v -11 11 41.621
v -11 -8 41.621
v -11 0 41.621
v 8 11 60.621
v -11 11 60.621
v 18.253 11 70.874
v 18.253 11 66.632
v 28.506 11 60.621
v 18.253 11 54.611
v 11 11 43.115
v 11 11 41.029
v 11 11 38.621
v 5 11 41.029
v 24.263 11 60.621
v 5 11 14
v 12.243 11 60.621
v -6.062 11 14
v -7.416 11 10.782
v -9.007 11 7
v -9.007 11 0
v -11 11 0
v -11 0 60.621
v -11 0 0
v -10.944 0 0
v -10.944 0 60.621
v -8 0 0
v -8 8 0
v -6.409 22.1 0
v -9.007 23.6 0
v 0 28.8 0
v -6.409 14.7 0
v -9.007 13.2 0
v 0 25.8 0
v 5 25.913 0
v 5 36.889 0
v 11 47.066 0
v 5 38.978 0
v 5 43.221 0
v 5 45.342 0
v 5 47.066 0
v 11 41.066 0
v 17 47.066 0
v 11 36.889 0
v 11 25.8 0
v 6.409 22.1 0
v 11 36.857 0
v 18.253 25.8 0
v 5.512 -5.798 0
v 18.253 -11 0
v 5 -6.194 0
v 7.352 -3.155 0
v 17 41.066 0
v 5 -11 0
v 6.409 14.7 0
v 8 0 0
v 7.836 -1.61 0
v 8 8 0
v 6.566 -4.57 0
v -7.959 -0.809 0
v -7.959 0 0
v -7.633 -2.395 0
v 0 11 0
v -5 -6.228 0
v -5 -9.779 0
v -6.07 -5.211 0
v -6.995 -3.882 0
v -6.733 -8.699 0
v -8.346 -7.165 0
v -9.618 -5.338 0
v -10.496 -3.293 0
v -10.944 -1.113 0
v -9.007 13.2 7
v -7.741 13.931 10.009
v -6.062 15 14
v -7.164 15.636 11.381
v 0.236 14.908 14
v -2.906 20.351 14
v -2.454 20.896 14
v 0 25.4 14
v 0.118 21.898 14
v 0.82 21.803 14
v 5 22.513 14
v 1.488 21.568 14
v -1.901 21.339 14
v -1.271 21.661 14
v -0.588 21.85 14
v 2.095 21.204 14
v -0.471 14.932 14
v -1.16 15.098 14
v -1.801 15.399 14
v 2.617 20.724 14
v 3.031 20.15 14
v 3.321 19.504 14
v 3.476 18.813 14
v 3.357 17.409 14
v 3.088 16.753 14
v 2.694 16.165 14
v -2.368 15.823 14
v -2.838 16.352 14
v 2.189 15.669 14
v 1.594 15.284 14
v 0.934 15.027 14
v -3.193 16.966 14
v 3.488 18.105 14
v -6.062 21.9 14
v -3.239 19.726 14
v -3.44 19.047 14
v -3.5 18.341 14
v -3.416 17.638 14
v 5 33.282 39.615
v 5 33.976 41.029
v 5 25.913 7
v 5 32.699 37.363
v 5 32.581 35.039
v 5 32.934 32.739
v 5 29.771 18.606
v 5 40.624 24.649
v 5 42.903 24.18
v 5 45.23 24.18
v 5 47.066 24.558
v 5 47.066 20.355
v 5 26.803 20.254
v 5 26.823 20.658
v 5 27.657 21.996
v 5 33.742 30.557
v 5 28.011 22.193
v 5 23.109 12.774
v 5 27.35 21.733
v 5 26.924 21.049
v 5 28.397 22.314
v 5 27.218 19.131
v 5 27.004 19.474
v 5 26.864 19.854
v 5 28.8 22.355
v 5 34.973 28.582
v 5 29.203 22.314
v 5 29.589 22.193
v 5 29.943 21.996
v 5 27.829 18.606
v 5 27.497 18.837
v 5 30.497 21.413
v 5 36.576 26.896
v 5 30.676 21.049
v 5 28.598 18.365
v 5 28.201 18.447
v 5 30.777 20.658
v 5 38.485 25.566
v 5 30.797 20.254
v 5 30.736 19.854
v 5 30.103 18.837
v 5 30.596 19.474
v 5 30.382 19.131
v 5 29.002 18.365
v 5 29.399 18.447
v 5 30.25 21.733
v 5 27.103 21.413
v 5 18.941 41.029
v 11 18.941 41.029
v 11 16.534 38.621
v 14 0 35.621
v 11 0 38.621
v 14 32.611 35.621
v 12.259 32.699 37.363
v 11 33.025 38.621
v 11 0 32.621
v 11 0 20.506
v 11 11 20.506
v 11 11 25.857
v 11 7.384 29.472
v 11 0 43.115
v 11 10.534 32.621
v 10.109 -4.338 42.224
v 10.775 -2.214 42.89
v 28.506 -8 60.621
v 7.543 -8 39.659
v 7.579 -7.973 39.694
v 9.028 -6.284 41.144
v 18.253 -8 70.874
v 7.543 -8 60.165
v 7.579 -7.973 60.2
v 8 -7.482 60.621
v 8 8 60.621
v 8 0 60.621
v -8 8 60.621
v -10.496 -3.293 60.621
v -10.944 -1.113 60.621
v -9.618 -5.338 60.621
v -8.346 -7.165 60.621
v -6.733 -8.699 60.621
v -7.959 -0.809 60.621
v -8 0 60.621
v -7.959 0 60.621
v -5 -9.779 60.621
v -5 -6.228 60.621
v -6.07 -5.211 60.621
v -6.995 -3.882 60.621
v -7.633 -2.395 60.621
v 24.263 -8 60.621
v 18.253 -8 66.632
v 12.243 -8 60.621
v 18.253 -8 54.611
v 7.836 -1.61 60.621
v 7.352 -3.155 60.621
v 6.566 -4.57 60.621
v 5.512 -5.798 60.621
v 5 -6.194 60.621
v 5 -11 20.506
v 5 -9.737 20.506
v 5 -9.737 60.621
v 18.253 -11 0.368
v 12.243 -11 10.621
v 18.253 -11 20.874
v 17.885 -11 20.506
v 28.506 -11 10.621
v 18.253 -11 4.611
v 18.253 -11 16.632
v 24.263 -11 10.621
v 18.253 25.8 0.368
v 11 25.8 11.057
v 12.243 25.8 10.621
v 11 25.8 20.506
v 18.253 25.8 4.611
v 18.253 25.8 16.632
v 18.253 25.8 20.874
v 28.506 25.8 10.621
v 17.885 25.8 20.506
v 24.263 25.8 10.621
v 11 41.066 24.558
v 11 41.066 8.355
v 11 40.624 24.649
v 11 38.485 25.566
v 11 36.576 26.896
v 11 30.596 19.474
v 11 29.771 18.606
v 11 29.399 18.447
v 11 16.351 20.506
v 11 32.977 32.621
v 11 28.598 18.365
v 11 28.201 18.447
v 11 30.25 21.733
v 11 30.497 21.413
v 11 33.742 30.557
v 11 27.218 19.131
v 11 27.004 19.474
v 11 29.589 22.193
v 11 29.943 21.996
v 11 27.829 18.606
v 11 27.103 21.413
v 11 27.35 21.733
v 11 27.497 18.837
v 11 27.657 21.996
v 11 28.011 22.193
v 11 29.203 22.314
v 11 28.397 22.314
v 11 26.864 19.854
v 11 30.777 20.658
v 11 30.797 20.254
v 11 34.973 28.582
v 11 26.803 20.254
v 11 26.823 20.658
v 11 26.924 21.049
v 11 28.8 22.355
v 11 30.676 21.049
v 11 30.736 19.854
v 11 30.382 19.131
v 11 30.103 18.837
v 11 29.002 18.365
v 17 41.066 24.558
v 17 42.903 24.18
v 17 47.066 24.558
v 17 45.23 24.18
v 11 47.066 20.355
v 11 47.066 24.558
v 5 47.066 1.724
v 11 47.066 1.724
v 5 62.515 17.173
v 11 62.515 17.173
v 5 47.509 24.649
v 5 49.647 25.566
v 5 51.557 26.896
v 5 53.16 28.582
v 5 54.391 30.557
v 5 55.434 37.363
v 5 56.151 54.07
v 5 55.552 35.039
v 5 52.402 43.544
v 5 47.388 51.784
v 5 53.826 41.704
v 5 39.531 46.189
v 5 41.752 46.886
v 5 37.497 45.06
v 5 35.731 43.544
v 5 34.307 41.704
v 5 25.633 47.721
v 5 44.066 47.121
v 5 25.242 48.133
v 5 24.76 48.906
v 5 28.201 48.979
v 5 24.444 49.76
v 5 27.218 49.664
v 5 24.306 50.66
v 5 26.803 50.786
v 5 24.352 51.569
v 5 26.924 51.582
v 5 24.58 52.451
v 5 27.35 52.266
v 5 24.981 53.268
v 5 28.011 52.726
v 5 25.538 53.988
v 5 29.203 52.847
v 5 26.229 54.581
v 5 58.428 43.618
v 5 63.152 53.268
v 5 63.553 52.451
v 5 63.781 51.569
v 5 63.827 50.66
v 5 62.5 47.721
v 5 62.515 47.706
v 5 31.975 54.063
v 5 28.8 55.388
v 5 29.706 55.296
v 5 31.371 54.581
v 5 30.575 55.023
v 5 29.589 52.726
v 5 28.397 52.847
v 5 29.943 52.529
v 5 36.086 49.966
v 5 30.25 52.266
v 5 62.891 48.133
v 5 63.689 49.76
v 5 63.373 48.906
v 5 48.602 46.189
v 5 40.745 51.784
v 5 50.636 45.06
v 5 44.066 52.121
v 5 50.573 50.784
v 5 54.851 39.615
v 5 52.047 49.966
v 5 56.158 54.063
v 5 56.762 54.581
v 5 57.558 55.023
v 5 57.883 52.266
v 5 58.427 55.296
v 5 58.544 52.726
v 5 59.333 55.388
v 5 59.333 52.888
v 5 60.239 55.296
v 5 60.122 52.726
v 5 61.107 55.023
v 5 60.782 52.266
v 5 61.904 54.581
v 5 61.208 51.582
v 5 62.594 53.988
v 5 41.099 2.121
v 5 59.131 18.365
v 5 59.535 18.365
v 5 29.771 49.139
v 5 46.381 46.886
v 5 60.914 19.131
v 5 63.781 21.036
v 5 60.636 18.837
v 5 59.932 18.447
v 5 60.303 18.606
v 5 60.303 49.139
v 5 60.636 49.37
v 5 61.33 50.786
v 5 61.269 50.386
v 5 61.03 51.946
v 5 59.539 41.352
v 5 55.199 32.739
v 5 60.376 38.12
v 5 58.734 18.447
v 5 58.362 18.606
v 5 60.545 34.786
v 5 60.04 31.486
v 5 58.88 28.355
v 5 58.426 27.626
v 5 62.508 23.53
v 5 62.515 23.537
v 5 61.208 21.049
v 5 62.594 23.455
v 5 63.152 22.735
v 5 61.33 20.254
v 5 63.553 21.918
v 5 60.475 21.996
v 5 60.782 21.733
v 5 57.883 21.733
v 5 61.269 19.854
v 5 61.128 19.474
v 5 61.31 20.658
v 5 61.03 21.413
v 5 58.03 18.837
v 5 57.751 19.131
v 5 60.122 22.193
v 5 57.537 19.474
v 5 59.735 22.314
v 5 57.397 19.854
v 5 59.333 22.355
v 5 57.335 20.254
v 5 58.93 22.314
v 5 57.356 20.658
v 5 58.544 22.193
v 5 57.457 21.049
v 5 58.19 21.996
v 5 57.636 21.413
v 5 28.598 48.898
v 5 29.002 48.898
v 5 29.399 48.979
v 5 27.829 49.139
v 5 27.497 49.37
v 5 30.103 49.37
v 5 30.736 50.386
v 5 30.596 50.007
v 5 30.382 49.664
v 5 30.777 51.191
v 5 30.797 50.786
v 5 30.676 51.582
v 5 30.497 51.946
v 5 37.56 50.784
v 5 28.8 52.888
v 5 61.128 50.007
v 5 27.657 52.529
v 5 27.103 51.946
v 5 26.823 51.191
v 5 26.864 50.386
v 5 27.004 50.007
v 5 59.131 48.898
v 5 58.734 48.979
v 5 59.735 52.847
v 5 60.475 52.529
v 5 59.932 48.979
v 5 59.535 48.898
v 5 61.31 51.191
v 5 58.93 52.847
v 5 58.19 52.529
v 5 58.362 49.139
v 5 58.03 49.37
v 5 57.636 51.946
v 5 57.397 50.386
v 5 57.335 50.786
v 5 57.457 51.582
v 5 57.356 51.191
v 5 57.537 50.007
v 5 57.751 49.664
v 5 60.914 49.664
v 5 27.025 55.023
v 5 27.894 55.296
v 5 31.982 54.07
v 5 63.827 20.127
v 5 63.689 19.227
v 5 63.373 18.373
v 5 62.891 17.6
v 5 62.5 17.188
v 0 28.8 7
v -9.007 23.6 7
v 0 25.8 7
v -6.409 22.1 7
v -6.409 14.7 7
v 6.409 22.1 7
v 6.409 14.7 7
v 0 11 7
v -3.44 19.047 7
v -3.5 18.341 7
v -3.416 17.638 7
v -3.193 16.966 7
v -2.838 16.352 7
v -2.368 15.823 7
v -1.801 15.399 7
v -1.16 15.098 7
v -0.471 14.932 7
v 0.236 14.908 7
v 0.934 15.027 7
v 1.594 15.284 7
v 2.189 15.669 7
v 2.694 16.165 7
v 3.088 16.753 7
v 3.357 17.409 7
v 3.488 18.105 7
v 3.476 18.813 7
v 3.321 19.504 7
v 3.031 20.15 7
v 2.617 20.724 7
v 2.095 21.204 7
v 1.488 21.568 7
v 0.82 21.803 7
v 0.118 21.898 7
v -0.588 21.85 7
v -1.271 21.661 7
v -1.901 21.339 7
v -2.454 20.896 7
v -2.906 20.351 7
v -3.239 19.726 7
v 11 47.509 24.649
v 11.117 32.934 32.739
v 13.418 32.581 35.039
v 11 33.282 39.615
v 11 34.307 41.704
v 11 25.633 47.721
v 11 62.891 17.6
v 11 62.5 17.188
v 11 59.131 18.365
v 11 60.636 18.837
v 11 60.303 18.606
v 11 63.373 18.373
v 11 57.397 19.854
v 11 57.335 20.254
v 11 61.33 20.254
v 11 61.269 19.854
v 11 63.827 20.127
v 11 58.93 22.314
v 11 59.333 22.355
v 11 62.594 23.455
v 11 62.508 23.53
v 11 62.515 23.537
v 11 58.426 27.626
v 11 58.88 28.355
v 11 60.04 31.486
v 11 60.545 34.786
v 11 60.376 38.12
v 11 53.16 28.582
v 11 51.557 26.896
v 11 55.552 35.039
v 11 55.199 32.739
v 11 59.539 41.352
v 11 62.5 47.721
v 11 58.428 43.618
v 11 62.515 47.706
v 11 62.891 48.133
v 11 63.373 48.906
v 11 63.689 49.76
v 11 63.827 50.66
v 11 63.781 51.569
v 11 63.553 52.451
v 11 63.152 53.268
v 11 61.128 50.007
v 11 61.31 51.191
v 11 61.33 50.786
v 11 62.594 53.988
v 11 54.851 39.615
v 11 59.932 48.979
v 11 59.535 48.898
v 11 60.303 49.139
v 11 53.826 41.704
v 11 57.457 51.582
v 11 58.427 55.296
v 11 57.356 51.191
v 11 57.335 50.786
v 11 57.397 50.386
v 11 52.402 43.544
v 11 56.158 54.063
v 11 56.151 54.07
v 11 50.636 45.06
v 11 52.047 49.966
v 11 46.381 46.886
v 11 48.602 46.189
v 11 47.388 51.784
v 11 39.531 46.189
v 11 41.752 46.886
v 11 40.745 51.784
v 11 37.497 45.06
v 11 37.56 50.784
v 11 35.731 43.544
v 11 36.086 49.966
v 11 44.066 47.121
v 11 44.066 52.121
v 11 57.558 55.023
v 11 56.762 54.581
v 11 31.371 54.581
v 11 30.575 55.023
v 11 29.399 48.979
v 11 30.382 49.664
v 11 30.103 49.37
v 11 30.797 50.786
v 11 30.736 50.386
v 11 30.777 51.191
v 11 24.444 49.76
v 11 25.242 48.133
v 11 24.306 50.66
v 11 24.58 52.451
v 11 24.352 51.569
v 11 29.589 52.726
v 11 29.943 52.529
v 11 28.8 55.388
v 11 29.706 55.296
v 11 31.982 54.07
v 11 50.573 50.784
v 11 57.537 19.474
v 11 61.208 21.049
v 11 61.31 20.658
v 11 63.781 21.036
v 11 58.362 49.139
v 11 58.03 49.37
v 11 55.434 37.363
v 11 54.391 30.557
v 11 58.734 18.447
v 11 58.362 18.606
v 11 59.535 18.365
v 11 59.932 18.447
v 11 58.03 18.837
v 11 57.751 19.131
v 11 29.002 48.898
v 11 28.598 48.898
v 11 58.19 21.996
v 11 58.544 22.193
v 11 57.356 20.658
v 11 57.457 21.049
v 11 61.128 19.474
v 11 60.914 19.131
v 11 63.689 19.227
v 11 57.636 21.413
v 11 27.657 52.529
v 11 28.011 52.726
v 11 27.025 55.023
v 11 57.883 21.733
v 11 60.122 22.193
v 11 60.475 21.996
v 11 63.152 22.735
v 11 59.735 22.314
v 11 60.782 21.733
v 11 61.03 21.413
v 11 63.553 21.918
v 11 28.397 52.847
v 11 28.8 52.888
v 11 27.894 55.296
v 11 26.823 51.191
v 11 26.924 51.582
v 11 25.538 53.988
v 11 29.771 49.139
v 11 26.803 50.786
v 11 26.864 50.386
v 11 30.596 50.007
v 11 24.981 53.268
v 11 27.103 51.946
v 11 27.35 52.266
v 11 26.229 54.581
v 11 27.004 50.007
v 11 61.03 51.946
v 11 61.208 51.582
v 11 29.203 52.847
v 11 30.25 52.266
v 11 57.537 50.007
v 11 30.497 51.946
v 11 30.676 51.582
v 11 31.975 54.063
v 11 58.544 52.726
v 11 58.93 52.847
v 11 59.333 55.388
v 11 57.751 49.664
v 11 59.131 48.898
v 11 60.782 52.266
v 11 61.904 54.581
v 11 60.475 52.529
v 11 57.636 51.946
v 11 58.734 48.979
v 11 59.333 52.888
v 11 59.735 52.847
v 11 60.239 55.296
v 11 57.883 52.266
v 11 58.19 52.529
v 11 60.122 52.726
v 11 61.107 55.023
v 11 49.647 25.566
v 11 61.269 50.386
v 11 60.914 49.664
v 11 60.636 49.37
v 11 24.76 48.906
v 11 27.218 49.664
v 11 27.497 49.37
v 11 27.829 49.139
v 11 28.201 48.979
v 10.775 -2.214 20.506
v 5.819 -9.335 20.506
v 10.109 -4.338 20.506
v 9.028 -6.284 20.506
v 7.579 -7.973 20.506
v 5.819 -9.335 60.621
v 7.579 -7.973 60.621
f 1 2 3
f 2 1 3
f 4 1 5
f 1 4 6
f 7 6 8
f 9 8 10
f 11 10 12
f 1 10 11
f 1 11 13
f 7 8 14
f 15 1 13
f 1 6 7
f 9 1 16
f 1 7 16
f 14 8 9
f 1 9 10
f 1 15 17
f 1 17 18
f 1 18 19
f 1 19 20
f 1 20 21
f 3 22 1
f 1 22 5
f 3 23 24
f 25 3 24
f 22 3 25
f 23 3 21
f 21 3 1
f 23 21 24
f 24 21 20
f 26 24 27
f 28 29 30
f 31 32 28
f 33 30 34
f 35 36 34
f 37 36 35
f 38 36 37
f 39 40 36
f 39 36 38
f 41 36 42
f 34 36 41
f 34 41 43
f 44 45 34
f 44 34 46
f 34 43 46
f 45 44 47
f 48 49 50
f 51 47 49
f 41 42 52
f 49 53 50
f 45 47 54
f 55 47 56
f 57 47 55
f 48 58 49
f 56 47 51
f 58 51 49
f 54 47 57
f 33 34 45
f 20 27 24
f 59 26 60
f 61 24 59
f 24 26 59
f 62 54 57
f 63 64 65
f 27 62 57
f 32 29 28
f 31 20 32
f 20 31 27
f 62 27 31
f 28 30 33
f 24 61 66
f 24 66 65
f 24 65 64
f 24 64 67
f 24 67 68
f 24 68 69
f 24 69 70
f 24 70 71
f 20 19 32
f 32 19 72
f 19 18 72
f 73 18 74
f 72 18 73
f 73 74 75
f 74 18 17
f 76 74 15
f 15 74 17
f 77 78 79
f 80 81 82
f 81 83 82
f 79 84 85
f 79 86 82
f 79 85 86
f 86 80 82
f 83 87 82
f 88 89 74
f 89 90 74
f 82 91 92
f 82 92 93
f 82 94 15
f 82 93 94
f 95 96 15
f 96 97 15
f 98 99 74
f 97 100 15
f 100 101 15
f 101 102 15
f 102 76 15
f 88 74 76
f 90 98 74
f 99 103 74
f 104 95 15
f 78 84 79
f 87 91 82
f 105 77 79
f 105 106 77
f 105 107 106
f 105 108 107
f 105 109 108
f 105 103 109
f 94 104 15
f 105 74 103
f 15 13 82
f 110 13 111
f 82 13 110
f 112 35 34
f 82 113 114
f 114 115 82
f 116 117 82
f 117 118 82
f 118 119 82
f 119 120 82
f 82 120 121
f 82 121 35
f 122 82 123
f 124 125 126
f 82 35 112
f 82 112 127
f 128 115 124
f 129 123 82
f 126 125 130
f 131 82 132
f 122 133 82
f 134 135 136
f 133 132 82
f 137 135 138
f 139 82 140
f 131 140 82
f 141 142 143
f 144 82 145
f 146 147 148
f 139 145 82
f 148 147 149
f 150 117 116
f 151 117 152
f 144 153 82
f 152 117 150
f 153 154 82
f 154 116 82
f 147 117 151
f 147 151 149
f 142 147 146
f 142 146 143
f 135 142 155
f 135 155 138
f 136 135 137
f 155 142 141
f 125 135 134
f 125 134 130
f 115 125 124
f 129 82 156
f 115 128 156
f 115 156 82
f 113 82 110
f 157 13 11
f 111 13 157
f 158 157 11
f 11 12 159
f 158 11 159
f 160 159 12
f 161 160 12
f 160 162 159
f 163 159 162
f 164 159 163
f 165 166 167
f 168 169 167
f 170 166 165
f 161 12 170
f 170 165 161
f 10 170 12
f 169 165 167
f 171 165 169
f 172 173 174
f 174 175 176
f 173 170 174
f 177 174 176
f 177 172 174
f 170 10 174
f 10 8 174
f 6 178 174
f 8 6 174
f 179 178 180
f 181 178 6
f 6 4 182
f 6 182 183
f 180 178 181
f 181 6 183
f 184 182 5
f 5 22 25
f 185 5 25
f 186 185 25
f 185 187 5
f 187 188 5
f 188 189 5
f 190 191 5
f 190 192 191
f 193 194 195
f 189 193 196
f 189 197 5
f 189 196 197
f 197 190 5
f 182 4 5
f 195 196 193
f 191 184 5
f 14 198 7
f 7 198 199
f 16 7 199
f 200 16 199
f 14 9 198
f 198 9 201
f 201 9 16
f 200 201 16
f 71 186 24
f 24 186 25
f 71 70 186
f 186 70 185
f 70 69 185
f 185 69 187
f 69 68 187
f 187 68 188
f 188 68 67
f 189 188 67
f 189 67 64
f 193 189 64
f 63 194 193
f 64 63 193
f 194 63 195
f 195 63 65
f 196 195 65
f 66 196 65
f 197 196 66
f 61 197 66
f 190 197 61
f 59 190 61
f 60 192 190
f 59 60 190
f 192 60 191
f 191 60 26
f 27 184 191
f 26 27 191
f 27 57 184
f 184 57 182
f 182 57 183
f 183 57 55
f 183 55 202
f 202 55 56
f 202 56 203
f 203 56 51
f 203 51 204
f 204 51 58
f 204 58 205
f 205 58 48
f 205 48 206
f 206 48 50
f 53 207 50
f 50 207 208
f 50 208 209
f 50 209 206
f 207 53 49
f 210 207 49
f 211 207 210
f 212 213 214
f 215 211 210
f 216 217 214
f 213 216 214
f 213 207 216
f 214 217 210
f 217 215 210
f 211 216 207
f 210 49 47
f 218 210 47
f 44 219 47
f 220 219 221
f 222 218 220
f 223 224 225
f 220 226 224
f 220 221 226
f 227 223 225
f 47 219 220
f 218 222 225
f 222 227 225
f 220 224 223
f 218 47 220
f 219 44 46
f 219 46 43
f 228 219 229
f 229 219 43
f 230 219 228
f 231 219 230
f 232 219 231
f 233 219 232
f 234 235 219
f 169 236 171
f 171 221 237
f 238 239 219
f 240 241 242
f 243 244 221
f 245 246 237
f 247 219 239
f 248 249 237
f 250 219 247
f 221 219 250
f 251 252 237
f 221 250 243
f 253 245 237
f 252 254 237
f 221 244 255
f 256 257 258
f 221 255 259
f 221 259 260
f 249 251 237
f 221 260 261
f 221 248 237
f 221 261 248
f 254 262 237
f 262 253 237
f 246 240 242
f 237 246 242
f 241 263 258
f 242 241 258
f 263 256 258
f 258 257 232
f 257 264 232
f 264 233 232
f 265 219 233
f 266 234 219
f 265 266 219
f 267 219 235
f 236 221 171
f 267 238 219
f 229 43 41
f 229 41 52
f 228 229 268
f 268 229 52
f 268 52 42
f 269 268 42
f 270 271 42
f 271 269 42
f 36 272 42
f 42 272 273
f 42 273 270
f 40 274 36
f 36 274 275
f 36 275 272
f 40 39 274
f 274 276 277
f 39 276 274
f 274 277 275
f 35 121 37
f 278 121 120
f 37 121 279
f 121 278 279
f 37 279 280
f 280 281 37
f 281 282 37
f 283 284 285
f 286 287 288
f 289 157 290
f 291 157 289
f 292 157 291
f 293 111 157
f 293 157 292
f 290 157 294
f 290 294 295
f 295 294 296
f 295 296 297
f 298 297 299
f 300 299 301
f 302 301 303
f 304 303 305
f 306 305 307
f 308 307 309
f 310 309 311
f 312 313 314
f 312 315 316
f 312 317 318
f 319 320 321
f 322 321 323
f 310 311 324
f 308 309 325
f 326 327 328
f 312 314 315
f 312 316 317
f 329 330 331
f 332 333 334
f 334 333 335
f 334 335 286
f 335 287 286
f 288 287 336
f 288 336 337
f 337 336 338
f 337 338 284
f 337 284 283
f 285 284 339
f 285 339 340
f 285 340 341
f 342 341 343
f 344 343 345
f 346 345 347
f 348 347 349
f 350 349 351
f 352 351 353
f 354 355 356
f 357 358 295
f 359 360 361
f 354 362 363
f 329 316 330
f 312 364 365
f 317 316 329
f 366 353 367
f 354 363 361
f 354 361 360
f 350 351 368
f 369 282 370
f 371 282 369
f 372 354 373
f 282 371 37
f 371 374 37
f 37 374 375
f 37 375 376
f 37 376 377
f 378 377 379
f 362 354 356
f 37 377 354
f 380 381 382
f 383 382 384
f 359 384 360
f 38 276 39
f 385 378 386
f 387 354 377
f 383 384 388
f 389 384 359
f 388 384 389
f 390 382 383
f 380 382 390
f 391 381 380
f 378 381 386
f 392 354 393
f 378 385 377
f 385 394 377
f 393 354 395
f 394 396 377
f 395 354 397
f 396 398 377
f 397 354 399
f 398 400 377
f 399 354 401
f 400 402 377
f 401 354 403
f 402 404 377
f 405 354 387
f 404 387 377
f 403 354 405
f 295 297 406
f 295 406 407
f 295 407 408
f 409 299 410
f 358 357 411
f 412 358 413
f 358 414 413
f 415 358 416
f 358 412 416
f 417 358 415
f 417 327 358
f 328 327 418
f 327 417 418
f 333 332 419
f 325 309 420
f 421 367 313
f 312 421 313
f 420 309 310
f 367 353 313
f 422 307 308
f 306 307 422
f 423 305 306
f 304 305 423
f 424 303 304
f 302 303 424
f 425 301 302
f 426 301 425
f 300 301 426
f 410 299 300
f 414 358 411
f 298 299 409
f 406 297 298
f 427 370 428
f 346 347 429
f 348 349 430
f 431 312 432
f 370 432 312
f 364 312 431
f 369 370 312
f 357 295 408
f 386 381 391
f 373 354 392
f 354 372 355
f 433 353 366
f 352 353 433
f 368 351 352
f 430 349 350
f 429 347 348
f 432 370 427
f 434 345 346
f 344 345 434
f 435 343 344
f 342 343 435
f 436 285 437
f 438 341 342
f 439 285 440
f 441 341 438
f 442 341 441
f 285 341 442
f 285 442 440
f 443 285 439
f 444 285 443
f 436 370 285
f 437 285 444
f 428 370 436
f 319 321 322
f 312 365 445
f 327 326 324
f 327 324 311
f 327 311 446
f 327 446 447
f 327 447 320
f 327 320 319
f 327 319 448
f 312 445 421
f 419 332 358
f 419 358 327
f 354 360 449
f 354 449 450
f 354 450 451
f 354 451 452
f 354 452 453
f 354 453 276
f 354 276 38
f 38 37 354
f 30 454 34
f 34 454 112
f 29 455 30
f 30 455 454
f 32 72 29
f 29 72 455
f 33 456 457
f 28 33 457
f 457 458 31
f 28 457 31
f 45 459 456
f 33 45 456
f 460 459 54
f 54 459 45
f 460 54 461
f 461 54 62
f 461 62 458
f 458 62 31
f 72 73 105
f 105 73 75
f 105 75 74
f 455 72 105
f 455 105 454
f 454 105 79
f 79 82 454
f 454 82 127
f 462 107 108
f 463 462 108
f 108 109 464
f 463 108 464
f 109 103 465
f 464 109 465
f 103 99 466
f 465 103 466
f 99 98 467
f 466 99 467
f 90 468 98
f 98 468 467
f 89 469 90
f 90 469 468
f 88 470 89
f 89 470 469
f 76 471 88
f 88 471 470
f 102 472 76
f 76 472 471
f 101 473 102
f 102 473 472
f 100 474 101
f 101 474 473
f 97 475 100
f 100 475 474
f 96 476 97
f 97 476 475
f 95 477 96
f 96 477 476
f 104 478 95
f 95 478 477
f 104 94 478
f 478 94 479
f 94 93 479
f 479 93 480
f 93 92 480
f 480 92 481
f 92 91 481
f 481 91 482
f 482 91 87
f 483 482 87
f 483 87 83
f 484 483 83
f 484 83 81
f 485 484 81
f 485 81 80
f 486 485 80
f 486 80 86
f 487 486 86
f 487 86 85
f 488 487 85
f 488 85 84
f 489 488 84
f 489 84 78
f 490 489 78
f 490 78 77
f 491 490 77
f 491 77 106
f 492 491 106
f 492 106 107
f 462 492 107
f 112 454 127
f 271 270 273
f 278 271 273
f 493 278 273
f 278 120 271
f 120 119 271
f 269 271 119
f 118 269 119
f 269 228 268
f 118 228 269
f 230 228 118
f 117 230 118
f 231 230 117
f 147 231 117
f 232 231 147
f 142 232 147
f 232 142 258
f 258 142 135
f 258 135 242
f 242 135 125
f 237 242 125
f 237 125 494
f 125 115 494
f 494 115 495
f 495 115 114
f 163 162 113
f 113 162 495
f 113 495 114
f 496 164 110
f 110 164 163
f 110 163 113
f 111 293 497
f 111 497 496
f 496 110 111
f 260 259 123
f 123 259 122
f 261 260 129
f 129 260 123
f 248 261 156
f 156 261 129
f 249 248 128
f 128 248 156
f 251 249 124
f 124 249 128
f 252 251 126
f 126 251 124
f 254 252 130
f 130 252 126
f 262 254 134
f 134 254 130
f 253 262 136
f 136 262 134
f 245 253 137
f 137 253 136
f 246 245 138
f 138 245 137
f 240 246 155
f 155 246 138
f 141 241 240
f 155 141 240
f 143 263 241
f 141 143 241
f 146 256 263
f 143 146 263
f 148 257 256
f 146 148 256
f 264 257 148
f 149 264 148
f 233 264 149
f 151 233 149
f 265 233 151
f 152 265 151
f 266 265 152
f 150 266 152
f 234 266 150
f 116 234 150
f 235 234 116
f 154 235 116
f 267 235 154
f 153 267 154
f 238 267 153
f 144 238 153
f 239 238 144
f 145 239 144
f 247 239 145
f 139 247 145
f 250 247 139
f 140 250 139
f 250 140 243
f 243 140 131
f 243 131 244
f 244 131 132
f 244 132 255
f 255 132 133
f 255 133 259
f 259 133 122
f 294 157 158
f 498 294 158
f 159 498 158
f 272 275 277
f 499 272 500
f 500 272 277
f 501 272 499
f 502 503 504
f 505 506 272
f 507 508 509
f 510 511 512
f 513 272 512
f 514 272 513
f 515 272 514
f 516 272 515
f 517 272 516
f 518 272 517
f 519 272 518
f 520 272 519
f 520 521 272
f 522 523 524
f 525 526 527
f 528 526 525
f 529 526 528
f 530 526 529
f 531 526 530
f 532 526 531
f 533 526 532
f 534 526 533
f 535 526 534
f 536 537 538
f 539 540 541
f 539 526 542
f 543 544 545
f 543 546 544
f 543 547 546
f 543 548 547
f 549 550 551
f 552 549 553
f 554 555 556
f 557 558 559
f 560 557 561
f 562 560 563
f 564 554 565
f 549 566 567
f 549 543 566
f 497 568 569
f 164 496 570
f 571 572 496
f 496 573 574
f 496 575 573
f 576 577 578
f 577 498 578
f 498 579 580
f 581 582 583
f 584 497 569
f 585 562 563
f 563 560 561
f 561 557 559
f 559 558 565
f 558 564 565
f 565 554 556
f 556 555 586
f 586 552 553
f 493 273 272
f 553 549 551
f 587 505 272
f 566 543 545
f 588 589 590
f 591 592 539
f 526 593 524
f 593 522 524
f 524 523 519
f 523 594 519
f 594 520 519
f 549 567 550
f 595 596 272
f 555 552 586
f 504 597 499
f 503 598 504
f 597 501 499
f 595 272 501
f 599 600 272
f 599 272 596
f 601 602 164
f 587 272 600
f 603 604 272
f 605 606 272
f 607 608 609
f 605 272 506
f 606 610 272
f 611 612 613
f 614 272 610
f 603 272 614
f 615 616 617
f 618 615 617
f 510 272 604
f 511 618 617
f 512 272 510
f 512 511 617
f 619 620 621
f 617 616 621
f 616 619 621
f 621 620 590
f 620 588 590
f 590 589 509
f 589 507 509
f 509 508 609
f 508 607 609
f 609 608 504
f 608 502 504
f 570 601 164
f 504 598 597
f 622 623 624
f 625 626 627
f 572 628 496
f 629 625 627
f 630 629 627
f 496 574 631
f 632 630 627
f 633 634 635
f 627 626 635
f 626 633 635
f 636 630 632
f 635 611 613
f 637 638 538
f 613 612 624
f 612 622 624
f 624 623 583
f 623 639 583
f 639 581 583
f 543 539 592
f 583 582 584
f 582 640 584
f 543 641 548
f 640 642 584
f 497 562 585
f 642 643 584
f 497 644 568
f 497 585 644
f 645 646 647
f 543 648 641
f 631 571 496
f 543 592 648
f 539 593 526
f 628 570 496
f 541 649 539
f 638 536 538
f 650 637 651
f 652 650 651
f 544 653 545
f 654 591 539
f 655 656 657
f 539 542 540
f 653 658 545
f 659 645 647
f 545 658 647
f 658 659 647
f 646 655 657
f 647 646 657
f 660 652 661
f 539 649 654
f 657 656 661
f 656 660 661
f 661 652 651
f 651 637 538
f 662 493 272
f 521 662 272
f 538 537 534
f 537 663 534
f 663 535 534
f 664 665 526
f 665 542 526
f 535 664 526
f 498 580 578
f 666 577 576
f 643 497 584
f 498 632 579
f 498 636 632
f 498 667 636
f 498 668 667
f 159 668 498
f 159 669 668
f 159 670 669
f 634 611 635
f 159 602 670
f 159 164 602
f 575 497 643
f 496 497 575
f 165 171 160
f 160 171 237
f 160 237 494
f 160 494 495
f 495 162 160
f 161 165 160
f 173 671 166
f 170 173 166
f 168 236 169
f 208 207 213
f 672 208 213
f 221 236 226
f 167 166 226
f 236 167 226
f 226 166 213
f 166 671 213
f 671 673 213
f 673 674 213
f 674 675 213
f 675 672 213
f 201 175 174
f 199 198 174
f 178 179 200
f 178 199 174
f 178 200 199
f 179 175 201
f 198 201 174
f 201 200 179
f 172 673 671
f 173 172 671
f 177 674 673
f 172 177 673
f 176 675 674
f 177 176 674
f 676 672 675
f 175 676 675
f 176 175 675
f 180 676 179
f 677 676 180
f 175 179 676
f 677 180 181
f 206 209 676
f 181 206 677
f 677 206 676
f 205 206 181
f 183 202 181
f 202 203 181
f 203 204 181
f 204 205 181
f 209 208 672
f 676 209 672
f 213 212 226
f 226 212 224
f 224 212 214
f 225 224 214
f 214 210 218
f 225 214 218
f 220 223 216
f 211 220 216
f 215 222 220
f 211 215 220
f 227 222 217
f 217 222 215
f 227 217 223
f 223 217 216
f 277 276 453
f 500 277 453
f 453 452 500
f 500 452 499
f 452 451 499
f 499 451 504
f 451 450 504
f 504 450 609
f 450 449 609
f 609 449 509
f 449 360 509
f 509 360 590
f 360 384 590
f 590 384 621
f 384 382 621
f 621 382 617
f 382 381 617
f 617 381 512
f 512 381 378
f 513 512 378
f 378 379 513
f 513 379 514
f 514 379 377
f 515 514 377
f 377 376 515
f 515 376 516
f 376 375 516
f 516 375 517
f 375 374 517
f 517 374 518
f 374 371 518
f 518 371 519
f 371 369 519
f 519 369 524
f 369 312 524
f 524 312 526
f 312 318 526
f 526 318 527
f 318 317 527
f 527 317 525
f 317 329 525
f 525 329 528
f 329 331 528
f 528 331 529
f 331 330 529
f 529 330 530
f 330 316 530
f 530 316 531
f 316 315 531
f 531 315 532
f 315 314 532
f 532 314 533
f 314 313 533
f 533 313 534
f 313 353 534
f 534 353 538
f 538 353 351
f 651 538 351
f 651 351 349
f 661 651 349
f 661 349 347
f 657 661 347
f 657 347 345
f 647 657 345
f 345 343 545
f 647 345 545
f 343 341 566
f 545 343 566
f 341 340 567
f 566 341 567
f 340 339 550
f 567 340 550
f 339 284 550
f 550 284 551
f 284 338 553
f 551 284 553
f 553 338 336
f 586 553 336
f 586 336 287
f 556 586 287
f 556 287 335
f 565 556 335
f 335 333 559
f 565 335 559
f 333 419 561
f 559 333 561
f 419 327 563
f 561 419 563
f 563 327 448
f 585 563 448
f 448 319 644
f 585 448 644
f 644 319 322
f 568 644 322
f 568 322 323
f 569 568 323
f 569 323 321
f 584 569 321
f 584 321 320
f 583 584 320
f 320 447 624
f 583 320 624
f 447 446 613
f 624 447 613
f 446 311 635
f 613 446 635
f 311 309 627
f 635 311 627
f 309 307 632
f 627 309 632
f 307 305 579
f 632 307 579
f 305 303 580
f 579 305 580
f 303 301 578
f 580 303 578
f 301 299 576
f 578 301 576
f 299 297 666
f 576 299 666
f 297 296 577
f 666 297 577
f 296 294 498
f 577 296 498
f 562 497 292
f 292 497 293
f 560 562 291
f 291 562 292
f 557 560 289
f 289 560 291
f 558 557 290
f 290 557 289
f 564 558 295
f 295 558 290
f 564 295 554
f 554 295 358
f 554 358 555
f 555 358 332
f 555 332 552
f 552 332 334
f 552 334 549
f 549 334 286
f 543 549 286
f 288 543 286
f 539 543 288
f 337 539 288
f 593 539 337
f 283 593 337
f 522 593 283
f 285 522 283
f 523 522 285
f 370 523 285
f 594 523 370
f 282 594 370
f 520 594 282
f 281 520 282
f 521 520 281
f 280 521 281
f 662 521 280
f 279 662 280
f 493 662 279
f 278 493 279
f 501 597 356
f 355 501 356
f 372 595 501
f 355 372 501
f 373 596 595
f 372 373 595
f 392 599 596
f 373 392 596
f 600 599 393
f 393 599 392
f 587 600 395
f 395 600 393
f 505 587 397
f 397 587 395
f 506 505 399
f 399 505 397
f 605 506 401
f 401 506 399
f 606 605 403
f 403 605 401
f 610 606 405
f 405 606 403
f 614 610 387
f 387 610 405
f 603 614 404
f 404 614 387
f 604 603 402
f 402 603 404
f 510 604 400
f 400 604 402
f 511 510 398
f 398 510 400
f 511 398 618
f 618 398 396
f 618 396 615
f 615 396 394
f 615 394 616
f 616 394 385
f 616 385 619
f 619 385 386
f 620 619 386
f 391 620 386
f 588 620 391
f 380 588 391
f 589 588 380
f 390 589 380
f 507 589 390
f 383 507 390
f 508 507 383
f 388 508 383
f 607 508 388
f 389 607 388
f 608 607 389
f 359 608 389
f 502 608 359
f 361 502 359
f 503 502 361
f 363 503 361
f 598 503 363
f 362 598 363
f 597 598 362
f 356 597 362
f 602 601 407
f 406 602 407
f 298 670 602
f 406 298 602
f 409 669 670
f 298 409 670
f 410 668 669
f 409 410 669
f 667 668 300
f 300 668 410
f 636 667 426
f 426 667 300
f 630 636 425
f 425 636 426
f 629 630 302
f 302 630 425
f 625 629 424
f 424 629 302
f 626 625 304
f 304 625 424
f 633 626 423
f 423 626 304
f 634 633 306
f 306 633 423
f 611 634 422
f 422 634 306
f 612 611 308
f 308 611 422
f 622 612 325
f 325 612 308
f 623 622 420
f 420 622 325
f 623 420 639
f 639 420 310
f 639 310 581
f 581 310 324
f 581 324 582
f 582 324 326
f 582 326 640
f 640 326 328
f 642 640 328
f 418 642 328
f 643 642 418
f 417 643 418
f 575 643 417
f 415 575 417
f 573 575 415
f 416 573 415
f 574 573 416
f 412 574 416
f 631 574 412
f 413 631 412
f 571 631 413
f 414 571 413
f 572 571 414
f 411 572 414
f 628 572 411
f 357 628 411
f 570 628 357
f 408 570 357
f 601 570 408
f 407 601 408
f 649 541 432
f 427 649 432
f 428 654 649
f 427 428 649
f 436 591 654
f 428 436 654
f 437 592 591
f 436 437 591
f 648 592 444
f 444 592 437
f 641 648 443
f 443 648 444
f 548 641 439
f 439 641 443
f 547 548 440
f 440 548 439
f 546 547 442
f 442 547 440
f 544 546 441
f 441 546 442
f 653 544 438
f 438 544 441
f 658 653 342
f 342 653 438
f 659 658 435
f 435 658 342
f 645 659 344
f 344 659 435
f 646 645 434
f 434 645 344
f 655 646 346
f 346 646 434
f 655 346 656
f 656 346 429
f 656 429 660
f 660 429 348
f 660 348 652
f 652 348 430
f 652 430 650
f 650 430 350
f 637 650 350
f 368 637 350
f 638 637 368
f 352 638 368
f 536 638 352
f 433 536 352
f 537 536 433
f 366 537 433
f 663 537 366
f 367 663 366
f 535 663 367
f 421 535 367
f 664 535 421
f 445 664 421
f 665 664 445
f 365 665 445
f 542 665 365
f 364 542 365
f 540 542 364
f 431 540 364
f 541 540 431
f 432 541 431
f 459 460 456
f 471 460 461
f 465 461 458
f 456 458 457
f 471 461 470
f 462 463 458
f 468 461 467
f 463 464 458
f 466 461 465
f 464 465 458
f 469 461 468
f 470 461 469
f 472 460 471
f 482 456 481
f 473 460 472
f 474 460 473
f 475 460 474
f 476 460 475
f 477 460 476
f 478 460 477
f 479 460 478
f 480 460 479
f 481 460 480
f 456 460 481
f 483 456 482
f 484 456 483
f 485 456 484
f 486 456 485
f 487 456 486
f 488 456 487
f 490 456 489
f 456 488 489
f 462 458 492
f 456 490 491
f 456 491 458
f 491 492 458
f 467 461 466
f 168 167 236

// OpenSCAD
// file: config.scad
// This is the config for an M8 Mendel sized printer.

//Constants (These are used throughout the whole printer)
frameroddia = 8.5; //the frame rod diameter
smoothroddia = 8.5; //the smooth rod diameter
bushingod = 16; //The prusabushing OD, you can change this to 15 to use LM8UU linear bearings 
bushingheight = 11;
tapsize = 7; //The size of the hole before tapping. 7mm seems to work well.

nemasize = 1.7; //Nema Size (in imperial)
motorcenter = 23; //center hole size for the motor. If your motor center flange is smaller you can beef up parts this way. 
motorshaftdia = 5; // Motor shaft diameter
motorcenterwall = 5;
motorbody = 43;

pulleypitch = 5;
pulleyteeth = 8;
pulleydia = 12; // this will be replaced by the above soon

/* The Mixtape Mendel uses two types of fasteners. One is the "primary" type, which is the larger type that builds the structure,
 which was profiled above as "frameroddia, etc..". In the case of the Mendel, it is M8 threaded rod (Huxley, M6). It also uses "Secondary" hardware. This is a smaller screw used to retain tool heads, attach motors and lock pulleys on shafts. In the case of Mendel this is M3 or M4. M3 is preferred as it is cheaper. Tapping is quite the challenge though. 
*/
nutheight = 7; //Primary
nutdia = 14.8; //Primary
secscrewdia = 4; //secondary 
secscrewtap = 2.5; // secondary

beltthick = 2; //Thickness of the timing belt
beltwidth = 7; // Belt width, used for the y bed clamps so can be a little bugger than actual

mdfthick = 6; //thickness of MDF (You can use other wood, acrylic, lexan, etc)

bearingid = 8; // 608
bearingod = 22; // 608
bearinginnerrace = 12; // the amount of the inner race diameter exposed

tapping = true; //turn tapping on/off, not implemented yet. (Version 0.3 might implement this) Version 0.2 has tapping by default right now
layerheight = 0.32; //skeinforge/slicer layer height, used for the idler wasers right now. 

//Beef/tab/wall
motortabwall = 2.5;

//Frame Vertex
vertexwall = 3;
triangle = 60; // the angle the bottom vertexes have relative to horizontal

//Y Motor Mount
ymountthick = 9;
ywallmulti = 2; //the wall thickness multiplier for the bits that interface with the frame rod

//Y Belt Clamps
clampholewall = 3;
	//(bushingod-pulleydia)/2

//Bar Clamps
barclampwall = 4;

//Top Piece
toppiecethick = 8;
toprodwall = 4;
toprodspacing = 72;
siderodwall = 4;

// X End Pieces
xrodspacing = 50; //rod spacing center to center
nutwall = 3; //wall thickness around nut and bushing
towergap= 10; // 0.75 diameter wrap should be ok i think. Make a flag for full wrap and no square for bushings/linear bearings maybe?
//Motor
motorinterface = 6; //thickness of the motor mount (6 works well, need to decouple from top piece)

//X Carriage 
carriagewidth = 50;
bushingwall = 3;
backwall = 5;
tooldia = 17;
platformthick = 7;
platformextension = 40; 
clampthick = 4; //The two pieces that clamp around the belt

//Z Coupler
couplerwall = 4;
couplerheight = 34; // Make this double 3/4 your shaft length
 
//Extruder (Plastic Pusher)
extruderthick = 5;
bowdencabledia = 4;
bowdenwall = 3;
idlerwall = 2;
pinchwheeldia = 8;

//Mendel Bowden Mount
mountspacing = 50;

//Utility Clamp 
utilityclampwall = 3;

//Groove Mount
	//Default is pretty good for MakerGear insulators
groovedia = 12;
grooveheight = 4.5;

//pen holder 
penwall = 3 ;
shaftheight = 30;
// main file
/*
  Mixtape Mendel - A Fully Parametric RepRap
    Copyright (C) 2011  Steve Kelly

    This program is free software: you can redistribute it and/or modify
    it under the terms of the GNU General Public License as published by
    the Free Software Foundation, either version 3 of the License, or
    (at your option) any later version.

    This program is distributed in the hope that it will be useful,
    but WITHOUT ANY WARRANTY; without even the implied warranty of
    MERCHANTABILITY or FITNESS FOR A PARTICULAR PURPOSE.  See the
    GNU General Public License for more details.

    You should have received a copy of the GNU General Public License
    along with this program.  If not, see <http://www.gnu.org/licenses/>.
*/


include <config.scad>;
$fn = 31;

difference(){
	union(){

	//Bushing Tower
	translate([0,0,0])cylinder(r=bushingod/2+nutwall, h=smoothroddia+nutwall*sin(45)+xrodspacing);
	translate([-bushingod/2-nutwall,0,0])cube([bushingod+nutwall*2,bushingod/2+nutwall,smoothroddia+nutwall*sin(45)+xrodspacing]);

	//x rods
	translate([bushingod/2,-bushingod/2-nutwall,smoothroddia+nutwall*sin(45)])rotate([0,45,0])cube([smoothroddia+nutwall*2,bushingod+nutwall*2+nutdia,smoothroddia+nutwall*2]);
	translate([towergap/2,-bushingod/2-nutwall,0])cube([bushingod/2+nutwall/sin(45)+smoothroddia*sin(45)-towergap/2,bushingod+nutwall*2+nutdia,(smoothroddia+nutwall*2)*2*sin(45)]);
	translate([bushingod/2,-bushingod/2,smoothroddia+nutwall*sin(45)+xrodspacing])rotate([0,45,0])translate([0,0,-(bushingod+nutwall)/sin(45)])cube([smoothroddia+nutwall*2,bushingod+nutwall,smoothroddia+nutwall*2+(bushingod+nutwall)/sin(45)]);

	//leadscrew
	translate([0,bushingod/2+nutdia/2+nutwall,nutheight])rotate([0,0,30])cylinder(r1=nutdia/2+nutwall, r2=tapsize, h=nutheight, $fn=6);
	translate([0,bushingod/2+tapsize/2,nutheight])rotate([0,0,30])cylinder(r1=nutdia/2+nutwall, r2=tapsize, h=nutheight, $fn=6);
	translate([0,bushingod/2+nutdia/2+nutwall,0])rotate([0,0,30])cylinder(r=nutdia/2+nutwall, h=nutheight, $fn=6);
	translate([0,bushingod/2+nutwall,0])rotate([0,0,30])cylinder(r=nutdia/2+nutwall, h=nutheight, $fn=6);

	//motor construction
		translate([bushingod/2+nutwall,bushingod/2+nutwall*2+nutdia,smoothroddia+nutwall*sin(45)+xrodspacing/2-nemasize*2.54*5*sin(45)])rotate([0,-90,0]){
		translate([nemasize*2.54*sin(45)*10,nemasize*2.54*sin(45)*10,0])cylinder(r=(secscrewdia/2+motortabwall), h=motorinterface);
		translate([0,nemasize*2.54*sin(45)*10,0])cylinder(r=(secscrewdia/2+motortabwall), h=motorinterface);
		translate([nemasize*2.54*sin(45)*10,0,0])cylinder(r=(secscrewdia/2+motortabwall), h=motorinterface);
		translate([0,0,0])cylinder(r=(secscrewdia/2+motortabwall), h=motorinterface);
		translate([nemasize*2.54*sin(45)*5,nemasize*2.54*sin(45)*5,0])cylinder(r=motorcenter/2+motorcenterwall, h=motorinterface); //motorcenter
		translate([-(secscrewdia/2+motortabwall)*sin(45),(secscrewdia/2+motortabwall)*sin(45),0])rotate([0,0,-45])cube([secscrewdia+motortabwall*2,nemasize*2.54*10,motorinterface]);
		translate([nemasize*2.54*sin(45)*10-((secscrewdia/2+motortabwall)*sin(45)),-(secscrewdia/2+motortabwall)*sin(45),0])rotate([0,0,45])translate([-(smoothroddia+xrodspacing/2-nemasize*2.54*5*sin(45))/sin(45),0,0])cube([secscrewdia+motortabwall*2+(smoothroddia+xrodspacing/2-nemasize*2.54*5*sin(45))/sin(45),nemasize*2.54*10,motorinterface]);
		translate([nemasize*2.54*sin(45)*10-((secscrewdia/2+motortabwall)*sin(45)),-(secscrewdia/2+motortabwall)*sin(45),0])rotate([0,0,45])translate([-(smoothroddia+xrodspacing/2-nemasize*2.54*5*sin(45))/sin(45)+(secscrewdia/2+motortabwall),secscrewdia/2+motortabwall,0])cube([(smoothroddia+xrodspacing/2-nemasize*2.54*5*sin(45))/sin(45),nemasize*2.54*10,motorinterface]);
		rotate([0,90,0])translate([-1,(nemasize*2.54*5*sin(45))-motorinterface/2,-smoothroddia/sin(45)-nutwall*2/sin(45)-secscrewdia/2])cube([motorinterface+1,motorinterface,nemasize*10*2.54]);
		rotate([0,90,0])translate([0,(nemasize*2.54*5*sin(45))+motorinterface/2,-smoothroddia/sin(45)-nutwall*2/sin(45)-secscrewdia/2])rotate([0,0,180])cube([motorinterface,bushingod/2+nutwall*2+nutdia+nemasize*2.54*sin(45)*5,nemasize*10*2.54]);
		rotate([0,90,0])translate([motorinterface/2,nemasize*2.54*5*sin(45),nemasize*2.54*5*sin(45)])rotate([0,45,180])cube([motorinterface/sin(45)*0.5,bushingod/2+nutwall*2+nutdia+nemasize*2.54*sin(45)*5,motorinterface/sin(45)*0.5]);
			}


	}
	//cleanup cause my math sucks
	translate([-50,-50,-5])cube([100,100,5]);

	//bushing holder
	translate([0,0,0])cylinder(r=bushingod/2, h=smoothroddia+nutwall*sin(45)+xrodspacing);
	translate([-bushingod/2,0,0])cube([bushingod,bushingod/2,smoothroddia+nutwall*sin(45)+xrodspacing]);
	translate([-towergap/2,-bushingod,0])cube([towergap,bushingod,smoothroddia+nutwall*sin(45)+xrodspacing]);

	//XRODS
	translate([nutwall/sin(45)+bushingod/2,-bushingod/2-nutwall,smoothroddia+nutwall*sin(45)])rotate([0,45,0])cube([smoothroddia,bushingod+nutwall*2+nutdia,smoothroddia]);
	translate([nutwall/sin(45)+bushingod/2,-bushingod/2-nutwall,smoothroddia+nutwall*sin(45)+xrodspacing])rotate([0,45,0])cube([smoothroddia,bushingod+nutwall*2,smoothroddia]);
	
	//overflow clean up
	difference(){
		translate([-bushingod/2-nutwall,-bushingod/2-nutwall,0])cube([bushingod/2+nutwall,bushingod/2+nutwall,smoothroddia+nutwall*sin(45)+xrodspacing]);
		cylinder(r=bushingod/2+nutwall,h=smoothroddia+nutwall*sin(45)+xrodspacing);	
		}	

	//leadscrew
	translate([0,bushingod/2+nutdia/2+nutwall,0])rotate([0,0,30])cylinder(r=nutdia/2, h=nutheight, $fn=6);
	translate([0,bushingod/2+nutdia/2+nutwall,nutheight])rotate([0,0,30])cylinder(r=tapsize/2, h=nutheight);
	//motor screws
		translate([bushingod/2+nutwall,bushingod/2+nutwall*2+nutdia,smoothroddia+nutwall*sin(45)+xrodspacing/2-nemasize*2.54*5*sin(45)])rotate([0,-90,0]){
		translate([nemasize*2.54*sin(45)*10,nemasize*2.54*sin(45)*10,-1])cylinder(r=secscrewdia/2, h=motorinterface+2);
		translate([0,nemasize*2.54*sin(45)*10,-1])cylinder(r=secscrewdia/2, h=motorinterface+2);
		translate([nemasize*2.54*sin(45)*10,0,-1])cylinder(r=secscrewdia/2, h=motorinterface+2);
		translate([0,0,-1])cylinder(r=secscrewdia/2, h=motorinterface+2);
		translate([nemasize*2.54*sin(45)*5,nemasize*2.54*sin(45)*5,-1-motorinterface])cylinder(r=motorcenter/2, h=motorinterface*2+2); //motorcenter
			}
		
}
